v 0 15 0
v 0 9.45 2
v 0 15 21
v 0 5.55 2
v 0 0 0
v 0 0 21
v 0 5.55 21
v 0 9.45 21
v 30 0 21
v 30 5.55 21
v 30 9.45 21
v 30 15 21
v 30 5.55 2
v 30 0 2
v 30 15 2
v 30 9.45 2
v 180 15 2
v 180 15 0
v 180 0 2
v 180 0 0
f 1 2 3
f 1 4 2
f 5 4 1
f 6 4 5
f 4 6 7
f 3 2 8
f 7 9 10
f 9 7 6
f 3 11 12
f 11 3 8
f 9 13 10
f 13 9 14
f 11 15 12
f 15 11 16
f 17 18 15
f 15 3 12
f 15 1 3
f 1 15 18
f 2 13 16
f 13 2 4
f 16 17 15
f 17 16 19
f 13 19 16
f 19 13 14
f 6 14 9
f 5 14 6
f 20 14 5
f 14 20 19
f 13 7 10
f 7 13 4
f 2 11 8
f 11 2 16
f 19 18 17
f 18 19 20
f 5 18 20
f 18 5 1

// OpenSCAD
use <text_on.scad>;

//General
$fn=12;
tolerance = 0.6;
wall = 2;

h_armBase = 2;
w_armBase = 15;
l_armBase = 180;

h_head = 9 + 10; // with of hand = 9, + 10mm for screws
w_head = w_armBase;
l_head = 30;

h_headSlot = h_head;
w_headSlot = 3.3 + tolerance;
l_headSlot = l_head;

cube([l_armBase, w_armBase, h_armBase]);
translate([0,0,h_armBase])
difference(){
  cube([l_head, w_head, h_head]);
  translate([l_head/2,w_head/2,h_headSlot/2])
  cube([l_headSlot, w_headSlot, h_headSlot], center=true);
}
